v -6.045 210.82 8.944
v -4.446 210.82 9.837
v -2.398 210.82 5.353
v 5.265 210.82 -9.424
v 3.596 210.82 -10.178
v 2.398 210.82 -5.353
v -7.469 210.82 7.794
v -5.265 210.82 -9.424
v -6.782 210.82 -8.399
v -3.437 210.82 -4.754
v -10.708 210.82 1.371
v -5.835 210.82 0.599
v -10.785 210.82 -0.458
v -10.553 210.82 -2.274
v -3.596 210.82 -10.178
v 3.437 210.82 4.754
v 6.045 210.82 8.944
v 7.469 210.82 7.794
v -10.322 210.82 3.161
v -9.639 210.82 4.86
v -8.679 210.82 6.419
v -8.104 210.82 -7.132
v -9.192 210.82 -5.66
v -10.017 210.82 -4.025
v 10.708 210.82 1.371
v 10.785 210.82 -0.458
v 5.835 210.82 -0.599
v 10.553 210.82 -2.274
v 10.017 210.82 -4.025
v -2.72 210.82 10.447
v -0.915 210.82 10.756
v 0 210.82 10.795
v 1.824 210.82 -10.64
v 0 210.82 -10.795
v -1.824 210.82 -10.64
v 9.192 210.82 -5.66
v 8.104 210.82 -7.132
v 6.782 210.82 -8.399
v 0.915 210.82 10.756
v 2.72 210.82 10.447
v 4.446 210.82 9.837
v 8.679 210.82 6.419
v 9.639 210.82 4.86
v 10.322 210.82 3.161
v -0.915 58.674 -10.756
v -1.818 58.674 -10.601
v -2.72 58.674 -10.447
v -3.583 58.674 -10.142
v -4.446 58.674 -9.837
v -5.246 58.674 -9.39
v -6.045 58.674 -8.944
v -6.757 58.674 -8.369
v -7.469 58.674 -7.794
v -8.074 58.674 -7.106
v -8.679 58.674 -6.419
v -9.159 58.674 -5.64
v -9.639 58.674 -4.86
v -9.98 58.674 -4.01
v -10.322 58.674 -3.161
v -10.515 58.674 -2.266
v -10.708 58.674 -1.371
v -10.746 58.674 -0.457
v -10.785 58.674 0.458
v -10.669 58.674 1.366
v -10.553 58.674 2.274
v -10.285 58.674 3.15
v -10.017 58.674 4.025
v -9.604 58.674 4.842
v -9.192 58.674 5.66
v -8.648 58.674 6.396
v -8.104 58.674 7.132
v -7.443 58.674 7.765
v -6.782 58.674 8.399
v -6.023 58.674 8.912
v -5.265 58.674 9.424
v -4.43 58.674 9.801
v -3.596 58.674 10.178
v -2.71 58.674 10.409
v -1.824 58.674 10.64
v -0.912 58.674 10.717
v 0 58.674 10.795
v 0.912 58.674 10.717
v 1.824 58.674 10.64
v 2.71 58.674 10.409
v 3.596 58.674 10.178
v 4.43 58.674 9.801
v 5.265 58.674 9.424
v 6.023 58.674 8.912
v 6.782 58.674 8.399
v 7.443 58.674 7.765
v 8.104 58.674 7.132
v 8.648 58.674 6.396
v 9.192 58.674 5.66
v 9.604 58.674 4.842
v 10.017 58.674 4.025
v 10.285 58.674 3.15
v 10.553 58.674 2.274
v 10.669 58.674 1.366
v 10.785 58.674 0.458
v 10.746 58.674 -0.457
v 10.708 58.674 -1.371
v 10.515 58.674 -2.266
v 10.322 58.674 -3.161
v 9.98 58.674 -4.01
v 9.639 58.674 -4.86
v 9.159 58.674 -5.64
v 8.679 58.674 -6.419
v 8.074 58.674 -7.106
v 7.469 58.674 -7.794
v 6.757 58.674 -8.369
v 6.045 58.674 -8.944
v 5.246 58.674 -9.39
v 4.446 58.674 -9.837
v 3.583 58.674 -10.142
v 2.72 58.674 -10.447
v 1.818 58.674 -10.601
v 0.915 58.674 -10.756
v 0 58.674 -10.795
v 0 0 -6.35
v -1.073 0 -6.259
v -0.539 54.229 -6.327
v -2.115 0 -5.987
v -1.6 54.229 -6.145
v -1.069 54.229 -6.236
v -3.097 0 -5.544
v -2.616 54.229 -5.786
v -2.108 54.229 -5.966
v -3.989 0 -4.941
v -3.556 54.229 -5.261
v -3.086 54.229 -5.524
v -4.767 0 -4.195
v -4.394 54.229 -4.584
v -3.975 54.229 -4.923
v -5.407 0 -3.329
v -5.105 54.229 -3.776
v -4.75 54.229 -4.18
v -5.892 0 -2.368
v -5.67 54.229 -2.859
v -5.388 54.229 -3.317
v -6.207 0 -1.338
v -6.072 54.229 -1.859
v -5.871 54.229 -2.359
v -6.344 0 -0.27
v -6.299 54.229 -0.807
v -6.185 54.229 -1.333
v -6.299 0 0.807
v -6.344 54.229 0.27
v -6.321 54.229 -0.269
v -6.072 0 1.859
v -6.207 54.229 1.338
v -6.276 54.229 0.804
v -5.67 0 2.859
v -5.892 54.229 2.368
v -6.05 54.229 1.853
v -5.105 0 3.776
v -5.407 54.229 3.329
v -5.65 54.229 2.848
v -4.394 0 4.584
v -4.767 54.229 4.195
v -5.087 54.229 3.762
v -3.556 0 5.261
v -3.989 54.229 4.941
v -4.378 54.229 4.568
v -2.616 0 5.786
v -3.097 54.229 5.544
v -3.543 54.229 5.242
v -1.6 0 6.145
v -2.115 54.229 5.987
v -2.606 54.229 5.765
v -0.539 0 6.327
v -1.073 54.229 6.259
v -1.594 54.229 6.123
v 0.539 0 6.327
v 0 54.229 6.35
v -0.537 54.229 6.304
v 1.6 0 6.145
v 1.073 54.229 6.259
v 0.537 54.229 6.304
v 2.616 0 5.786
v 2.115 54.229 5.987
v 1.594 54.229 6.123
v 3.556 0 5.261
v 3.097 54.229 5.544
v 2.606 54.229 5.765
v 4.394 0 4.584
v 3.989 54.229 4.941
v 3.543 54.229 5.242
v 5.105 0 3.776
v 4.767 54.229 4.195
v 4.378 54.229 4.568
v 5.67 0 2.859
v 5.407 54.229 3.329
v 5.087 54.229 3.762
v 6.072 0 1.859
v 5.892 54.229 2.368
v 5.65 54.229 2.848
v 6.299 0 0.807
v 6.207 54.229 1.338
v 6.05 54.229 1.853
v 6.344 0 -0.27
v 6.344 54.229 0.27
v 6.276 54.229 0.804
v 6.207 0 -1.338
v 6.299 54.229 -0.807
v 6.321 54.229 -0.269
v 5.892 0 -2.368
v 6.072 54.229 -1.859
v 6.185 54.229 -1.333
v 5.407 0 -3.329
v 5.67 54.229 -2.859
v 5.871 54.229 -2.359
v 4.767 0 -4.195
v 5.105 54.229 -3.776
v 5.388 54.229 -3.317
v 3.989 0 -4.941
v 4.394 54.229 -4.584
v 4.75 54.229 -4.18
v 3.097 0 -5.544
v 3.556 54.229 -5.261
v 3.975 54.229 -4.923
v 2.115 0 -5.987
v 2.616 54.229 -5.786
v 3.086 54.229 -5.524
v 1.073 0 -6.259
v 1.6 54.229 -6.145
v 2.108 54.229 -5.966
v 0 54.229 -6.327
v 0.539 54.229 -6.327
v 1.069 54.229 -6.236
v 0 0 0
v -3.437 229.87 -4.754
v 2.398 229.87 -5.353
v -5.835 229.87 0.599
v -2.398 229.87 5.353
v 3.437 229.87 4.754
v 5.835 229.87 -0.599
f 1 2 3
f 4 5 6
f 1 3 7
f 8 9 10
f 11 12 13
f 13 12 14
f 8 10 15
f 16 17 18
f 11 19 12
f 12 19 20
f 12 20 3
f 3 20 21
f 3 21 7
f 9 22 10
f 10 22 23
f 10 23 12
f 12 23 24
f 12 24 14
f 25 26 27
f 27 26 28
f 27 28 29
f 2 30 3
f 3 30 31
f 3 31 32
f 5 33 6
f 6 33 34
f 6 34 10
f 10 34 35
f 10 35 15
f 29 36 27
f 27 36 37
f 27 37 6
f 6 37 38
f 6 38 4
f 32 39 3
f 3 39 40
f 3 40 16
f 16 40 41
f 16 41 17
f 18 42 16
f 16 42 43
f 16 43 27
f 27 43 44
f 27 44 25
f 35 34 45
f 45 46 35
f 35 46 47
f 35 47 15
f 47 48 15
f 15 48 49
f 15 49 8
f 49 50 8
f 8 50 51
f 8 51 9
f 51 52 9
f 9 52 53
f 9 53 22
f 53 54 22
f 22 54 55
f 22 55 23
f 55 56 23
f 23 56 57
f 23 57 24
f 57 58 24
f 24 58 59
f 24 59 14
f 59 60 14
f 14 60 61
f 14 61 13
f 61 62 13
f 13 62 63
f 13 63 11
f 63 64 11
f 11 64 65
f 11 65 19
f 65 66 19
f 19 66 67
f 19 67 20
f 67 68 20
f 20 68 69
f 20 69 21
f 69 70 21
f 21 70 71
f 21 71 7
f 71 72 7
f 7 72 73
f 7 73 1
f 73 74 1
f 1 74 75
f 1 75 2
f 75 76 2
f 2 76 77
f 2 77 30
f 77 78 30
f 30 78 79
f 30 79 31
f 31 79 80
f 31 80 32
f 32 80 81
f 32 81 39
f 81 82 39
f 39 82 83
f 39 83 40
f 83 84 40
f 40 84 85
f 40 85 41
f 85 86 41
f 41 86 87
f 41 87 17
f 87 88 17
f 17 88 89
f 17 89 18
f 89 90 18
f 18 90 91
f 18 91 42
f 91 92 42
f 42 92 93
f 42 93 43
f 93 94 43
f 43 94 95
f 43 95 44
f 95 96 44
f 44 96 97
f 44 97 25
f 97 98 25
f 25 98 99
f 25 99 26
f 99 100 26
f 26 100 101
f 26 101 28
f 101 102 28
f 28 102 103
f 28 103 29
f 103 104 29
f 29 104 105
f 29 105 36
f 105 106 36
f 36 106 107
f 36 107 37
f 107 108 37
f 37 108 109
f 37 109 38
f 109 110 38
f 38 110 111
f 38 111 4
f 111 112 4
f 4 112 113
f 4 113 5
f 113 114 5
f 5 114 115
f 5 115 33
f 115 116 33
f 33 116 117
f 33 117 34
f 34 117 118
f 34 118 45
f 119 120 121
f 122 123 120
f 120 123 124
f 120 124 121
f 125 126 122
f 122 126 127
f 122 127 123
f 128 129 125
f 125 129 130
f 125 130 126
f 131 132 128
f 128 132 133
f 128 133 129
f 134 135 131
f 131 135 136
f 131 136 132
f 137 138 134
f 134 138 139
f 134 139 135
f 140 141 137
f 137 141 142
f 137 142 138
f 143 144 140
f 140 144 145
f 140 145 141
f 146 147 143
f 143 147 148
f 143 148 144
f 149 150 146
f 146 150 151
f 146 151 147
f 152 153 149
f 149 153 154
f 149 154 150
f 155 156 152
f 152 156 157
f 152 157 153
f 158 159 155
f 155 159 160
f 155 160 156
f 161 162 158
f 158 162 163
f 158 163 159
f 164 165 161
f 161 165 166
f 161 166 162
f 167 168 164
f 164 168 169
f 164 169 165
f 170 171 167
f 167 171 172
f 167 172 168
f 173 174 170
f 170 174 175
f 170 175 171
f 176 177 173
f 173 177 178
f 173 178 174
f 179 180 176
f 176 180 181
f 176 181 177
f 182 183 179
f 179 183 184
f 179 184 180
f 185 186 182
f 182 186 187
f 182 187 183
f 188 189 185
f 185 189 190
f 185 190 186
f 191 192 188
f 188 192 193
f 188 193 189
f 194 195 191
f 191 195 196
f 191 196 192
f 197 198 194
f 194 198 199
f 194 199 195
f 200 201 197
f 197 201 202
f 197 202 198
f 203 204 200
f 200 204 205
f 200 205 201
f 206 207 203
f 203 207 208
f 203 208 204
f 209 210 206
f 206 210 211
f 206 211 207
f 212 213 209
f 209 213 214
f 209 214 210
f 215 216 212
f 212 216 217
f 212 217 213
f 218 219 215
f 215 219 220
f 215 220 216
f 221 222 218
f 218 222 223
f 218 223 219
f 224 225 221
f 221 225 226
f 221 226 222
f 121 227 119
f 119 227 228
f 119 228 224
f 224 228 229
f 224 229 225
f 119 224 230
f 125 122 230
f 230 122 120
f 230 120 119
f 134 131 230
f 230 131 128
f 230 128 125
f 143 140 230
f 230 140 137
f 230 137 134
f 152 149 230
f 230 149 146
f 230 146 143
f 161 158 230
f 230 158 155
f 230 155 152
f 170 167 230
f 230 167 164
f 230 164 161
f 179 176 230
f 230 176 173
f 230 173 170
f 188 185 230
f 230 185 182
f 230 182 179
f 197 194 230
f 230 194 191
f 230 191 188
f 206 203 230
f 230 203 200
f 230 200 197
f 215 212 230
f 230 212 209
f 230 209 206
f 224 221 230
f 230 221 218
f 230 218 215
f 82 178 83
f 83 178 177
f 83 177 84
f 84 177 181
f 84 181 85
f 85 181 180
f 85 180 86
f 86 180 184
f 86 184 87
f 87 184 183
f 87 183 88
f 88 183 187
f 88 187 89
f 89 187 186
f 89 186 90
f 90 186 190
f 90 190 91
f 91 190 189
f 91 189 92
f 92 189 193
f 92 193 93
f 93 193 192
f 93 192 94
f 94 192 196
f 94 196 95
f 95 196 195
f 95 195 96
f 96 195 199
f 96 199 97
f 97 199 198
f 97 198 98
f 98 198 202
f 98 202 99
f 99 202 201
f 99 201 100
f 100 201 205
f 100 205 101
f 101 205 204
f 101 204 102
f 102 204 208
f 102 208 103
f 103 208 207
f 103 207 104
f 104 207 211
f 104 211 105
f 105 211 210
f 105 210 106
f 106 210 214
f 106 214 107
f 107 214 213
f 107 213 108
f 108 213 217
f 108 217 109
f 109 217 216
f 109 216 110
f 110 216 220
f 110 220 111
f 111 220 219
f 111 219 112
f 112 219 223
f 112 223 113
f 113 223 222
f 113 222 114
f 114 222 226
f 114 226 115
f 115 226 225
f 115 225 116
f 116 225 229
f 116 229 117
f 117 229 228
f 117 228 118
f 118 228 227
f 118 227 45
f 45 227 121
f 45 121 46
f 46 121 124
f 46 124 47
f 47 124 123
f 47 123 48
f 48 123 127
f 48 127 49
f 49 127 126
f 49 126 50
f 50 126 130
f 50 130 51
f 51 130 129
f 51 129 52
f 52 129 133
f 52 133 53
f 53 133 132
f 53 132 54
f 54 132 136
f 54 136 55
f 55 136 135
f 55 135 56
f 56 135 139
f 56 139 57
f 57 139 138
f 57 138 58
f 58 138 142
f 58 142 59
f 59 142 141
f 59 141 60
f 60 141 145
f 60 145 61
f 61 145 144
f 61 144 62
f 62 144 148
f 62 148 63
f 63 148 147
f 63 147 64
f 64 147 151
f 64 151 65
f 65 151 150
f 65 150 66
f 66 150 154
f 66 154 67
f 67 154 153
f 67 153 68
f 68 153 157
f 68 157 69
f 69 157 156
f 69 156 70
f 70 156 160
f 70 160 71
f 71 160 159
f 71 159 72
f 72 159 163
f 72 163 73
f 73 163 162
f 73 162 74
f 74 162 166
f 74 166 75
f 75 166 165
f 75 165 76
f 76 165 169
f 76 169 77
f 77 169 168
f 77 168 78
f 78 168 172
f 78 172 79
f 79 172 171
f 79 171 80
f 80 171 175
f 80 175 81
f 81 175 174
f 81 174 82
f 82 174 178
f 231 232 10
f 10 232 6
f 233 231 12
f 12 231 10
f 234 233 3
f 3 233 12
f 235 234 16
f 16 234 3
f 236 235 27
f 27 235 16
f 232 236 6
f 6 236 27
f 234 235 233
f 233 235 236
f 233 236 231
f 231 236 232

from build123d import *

# Parameters (mm, degrees)
SKETCH1_R           = 6.35
BOSS_EXTRUDE1_DEPTH = 421.64
SKETCH2_R           = 10.795
BOSS_EXTRUDE2_DEPTH = 421.64
SKETCH3_R           = 25.4
SKETCH3_R_2         = 6.35
CUT_EXTRUDE1_DEPTH  = 52.324
CUT_EXTRUDE2_START  = -57.658
SKETCH4_R           = 25.4
SKETCH4_R_2         = 6.35
CUT_EXTRUDE2_DEPTH  = 57.658
CHAMFER1_SIZE       = 6.35
SKETCH5_R           = 15.875
CUT_EXTRUDE4_DEPTH  = 212.372033273
BOSS_EXTRUDE3_DEPTH = 19.05


with BuildPart() as part:
    # Sketch1 → Boss-Extrude1 (new body)
    with BuildSketch(Plane(origin=(0, 0, 0), x_dir=(1, 0, 0), z_dir=(0, 1, 0))):
        with Locations(Location((0, 0, 0), (0, 0, 270))):
            Circle(SKETCH1_R)
    extrude(amount=BOSS_EXTRUDE1_DEPTH)

    # Sketch2 → Boss-Extrude2 (add)
    with BuildSketch(Plane(origin=(0, 0, 0), x_dir=(-1, 0, 0), z_dir=(0, -1, 0))):
        with Locations(Location((0, 0, 0), (0, 0, 90))):
            Circle(SKETCH2_R)
    extrude(amount=-BOSS_EXTRUDE2_DEPTH)

    # Sketch3 → Cut-Extrude1 (cut)
    with BuildSketch(Plane.XZ):
        Circle(SKETCH3_R)
        with Locations(Location((0, 0, 0), (0, 0, 270))):
            Circle(SKETCH3_R_2, mode=Mode.SUBTRACT)
    extrude(amount=-CUT_EXTRUDE1_DEPTH, mode=Mode.SUBTRACT)

    # Sketch4 → Cut-Extrude2 (cut)
    with BuildSketch(Plane(origin=(0, 421.64, 0), x_dir=(1, 0, 0), z_dir=(0, 1, 0)).offset(CUT_EXTRUDE2_START)):
        Circle(SKETCH4_R)
        with Locations(Location((0, 0, 0), (0, 0, 90))):
            Circle(SKETCH4_R_2, mode=Mode.SUBTRACT)
    extrude(amount=CUT_EXTRUDE2_DEPTH, mode=Mode.SUBTRACT)

    # Chamfer1
    # the kernel refuses this chamfer: 6.35 mm, written as the material it takes off along each edge
    with BuildSketch(Plane(origin=(0, 52.324, 0), x_dir=(0, 0, -1), z_dir=(-1, 0, 0))) as chamfer1_piece_1_section:
        Polygon((10.795, -CHAMFER1_SIZE), (10.795 - CHAMFER1_SIZE, 0), (10.795, 0), align=None)
    chamfer1_piece_1 = revolve(axis=Axis((0, 52.324, 0), (0, -1, 0)), mode=Mode.PRIVATE)
    chamfer1_piece_1 = chamfer1_piece_1 - Plane(origin=(0, 56.4676015, 0), x_dir=(0, 0, -1), z_dir=(0, -1, 0)) * Cylinder(6.35, 44, mode=Mode.PRIVATE)
    add(chamfer1_piece_1, mode=Mode.SUBTRACT)
    with BuildSketch(Plane(origin=(0, 363.982, 0), x_dir=(0, 0, -1), z_dir=(-1, 0, 0))) as chamfer1_piece_2_section:
        Polygon((10.795, CHAMFER1_SIZE), (10.795 - CHAMFER1_SIZE, 0), (10.795, 0), align=None)
    chamfer1_piece_2 = revolve(axis=Axis((0, 363.982, 0), (0, -1, 0)), mode=Mode.PRIVATE)
    chamfer1_piece_2 = chamfer1_piece_2 - Plane(origin=(0, 359.8383985, 0), x_dir=(0, 0, -1), z_dir=(0, -1, 0)) * Cylinder(6.35, 44, mode=Mode.PRIVATE)
    add(chamfer1_piece_2, mode=Mode.SUBTRACT)

    # Sketch5 → Cut-Extrude4 (cut, through all)
    with BuildSketch(Plane(origin=(0, 210.82, 0), x_dir=(1, 0, 0), z_dir=(0, 1, 0))):
        Circle(SKETCH5_R)
    extrude(amount=CUT_EXTRUDE4_DEPTH, mode=Mode.SUBTRACT)

    # Sketch6 → Boss-Extrude3 (add)
    with BuildSketch(Plane(origin=(0, 210.82, 0), x_dir=(1, 0, 0), z_dir=(0, 1, 0))):
        Polygon((-3.436763353, 4.753650281), (-5.83516358, -0.59949923), (-2.398400227, -5.353149511), (3.436763353, -4.753650281), (5.83516358, 0.59949923), (2.398400227, 5.353149511), align=None)
    extrude(amount=BOSS_EXTRUDE3_DEPTH)


solid = part.part
